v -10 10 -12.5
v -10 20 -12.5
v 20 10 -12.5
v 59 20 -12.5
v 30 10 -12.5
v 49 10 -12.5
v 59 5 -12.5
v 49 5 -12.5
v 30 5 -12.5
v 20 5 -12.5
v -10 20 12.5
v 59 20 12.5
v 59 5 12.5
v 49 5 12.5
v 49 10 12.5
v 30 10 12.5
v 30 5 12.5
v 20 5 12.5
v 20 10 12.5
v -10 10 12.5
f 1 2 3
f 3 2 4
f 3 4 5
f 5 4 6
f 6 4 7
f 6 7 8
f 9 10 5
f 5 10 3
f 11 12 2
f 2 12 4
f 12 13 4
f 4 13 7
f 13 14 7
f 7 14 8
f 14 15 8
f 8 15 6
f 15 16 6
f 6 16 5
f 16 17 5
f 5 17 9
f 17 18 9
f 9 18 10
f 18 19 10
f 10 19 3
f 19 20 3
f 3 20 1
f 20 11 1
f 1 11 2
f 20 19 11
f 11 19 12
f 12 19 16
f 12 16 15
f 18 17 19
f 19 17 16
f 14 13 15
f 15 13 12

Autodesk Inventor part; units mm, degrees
ref_plane "YZ Plane" through (0, 0, 0) normal (1, 0, 0) x (0, 1, 0)
ref_plane "XZ Plane" through (0, 0, 0) normal (0, 1, 0) x (-1, 0, 0)
ref_plane "XY Plane" through (0, 0, 0) normal (0, 0, 1) x (1, 0, 0)
sketch "Sketch1" plane through (0, 0, 0) normal (0, 0, 1) x (1, 0, 0)
  line L0 (-10, 10) -> (-10, 20)
  line L1 (-10, 20) -> (59, 20)
  line L2 (59, 20) -> (59, 5)
  line L3 (59, 5) -> (49, 5)
  line L4 (49, 5) -> (49, 10)
  line L5 (49, 10) -> (30, 10)
  line L6 (30, 10) -> (30, 5)
  line L7 (30, 5) -> (20, 5)
  line L8 (20, 5) -> (20, 10)
  line L9 (20, 10) -> (-10, 10)
  point P0 (0, 0)
  point P1 (0, 0)
  dimension "d0" = 19
  dimension "d1" = 10
  dimension "d2" = 10
  dimension "d3" = 30
  dimension "d4" = 10
  dimension "d5" = 5
  dimension "d6" = 59
  dimension "d7" = 10
  dimension "d8" = 10
  dimension "d9" = 59
extrude "Extrusion1" add sketch "Sketch1" along normal mid plane 25
properties part number "Load cell holder 3D print"
